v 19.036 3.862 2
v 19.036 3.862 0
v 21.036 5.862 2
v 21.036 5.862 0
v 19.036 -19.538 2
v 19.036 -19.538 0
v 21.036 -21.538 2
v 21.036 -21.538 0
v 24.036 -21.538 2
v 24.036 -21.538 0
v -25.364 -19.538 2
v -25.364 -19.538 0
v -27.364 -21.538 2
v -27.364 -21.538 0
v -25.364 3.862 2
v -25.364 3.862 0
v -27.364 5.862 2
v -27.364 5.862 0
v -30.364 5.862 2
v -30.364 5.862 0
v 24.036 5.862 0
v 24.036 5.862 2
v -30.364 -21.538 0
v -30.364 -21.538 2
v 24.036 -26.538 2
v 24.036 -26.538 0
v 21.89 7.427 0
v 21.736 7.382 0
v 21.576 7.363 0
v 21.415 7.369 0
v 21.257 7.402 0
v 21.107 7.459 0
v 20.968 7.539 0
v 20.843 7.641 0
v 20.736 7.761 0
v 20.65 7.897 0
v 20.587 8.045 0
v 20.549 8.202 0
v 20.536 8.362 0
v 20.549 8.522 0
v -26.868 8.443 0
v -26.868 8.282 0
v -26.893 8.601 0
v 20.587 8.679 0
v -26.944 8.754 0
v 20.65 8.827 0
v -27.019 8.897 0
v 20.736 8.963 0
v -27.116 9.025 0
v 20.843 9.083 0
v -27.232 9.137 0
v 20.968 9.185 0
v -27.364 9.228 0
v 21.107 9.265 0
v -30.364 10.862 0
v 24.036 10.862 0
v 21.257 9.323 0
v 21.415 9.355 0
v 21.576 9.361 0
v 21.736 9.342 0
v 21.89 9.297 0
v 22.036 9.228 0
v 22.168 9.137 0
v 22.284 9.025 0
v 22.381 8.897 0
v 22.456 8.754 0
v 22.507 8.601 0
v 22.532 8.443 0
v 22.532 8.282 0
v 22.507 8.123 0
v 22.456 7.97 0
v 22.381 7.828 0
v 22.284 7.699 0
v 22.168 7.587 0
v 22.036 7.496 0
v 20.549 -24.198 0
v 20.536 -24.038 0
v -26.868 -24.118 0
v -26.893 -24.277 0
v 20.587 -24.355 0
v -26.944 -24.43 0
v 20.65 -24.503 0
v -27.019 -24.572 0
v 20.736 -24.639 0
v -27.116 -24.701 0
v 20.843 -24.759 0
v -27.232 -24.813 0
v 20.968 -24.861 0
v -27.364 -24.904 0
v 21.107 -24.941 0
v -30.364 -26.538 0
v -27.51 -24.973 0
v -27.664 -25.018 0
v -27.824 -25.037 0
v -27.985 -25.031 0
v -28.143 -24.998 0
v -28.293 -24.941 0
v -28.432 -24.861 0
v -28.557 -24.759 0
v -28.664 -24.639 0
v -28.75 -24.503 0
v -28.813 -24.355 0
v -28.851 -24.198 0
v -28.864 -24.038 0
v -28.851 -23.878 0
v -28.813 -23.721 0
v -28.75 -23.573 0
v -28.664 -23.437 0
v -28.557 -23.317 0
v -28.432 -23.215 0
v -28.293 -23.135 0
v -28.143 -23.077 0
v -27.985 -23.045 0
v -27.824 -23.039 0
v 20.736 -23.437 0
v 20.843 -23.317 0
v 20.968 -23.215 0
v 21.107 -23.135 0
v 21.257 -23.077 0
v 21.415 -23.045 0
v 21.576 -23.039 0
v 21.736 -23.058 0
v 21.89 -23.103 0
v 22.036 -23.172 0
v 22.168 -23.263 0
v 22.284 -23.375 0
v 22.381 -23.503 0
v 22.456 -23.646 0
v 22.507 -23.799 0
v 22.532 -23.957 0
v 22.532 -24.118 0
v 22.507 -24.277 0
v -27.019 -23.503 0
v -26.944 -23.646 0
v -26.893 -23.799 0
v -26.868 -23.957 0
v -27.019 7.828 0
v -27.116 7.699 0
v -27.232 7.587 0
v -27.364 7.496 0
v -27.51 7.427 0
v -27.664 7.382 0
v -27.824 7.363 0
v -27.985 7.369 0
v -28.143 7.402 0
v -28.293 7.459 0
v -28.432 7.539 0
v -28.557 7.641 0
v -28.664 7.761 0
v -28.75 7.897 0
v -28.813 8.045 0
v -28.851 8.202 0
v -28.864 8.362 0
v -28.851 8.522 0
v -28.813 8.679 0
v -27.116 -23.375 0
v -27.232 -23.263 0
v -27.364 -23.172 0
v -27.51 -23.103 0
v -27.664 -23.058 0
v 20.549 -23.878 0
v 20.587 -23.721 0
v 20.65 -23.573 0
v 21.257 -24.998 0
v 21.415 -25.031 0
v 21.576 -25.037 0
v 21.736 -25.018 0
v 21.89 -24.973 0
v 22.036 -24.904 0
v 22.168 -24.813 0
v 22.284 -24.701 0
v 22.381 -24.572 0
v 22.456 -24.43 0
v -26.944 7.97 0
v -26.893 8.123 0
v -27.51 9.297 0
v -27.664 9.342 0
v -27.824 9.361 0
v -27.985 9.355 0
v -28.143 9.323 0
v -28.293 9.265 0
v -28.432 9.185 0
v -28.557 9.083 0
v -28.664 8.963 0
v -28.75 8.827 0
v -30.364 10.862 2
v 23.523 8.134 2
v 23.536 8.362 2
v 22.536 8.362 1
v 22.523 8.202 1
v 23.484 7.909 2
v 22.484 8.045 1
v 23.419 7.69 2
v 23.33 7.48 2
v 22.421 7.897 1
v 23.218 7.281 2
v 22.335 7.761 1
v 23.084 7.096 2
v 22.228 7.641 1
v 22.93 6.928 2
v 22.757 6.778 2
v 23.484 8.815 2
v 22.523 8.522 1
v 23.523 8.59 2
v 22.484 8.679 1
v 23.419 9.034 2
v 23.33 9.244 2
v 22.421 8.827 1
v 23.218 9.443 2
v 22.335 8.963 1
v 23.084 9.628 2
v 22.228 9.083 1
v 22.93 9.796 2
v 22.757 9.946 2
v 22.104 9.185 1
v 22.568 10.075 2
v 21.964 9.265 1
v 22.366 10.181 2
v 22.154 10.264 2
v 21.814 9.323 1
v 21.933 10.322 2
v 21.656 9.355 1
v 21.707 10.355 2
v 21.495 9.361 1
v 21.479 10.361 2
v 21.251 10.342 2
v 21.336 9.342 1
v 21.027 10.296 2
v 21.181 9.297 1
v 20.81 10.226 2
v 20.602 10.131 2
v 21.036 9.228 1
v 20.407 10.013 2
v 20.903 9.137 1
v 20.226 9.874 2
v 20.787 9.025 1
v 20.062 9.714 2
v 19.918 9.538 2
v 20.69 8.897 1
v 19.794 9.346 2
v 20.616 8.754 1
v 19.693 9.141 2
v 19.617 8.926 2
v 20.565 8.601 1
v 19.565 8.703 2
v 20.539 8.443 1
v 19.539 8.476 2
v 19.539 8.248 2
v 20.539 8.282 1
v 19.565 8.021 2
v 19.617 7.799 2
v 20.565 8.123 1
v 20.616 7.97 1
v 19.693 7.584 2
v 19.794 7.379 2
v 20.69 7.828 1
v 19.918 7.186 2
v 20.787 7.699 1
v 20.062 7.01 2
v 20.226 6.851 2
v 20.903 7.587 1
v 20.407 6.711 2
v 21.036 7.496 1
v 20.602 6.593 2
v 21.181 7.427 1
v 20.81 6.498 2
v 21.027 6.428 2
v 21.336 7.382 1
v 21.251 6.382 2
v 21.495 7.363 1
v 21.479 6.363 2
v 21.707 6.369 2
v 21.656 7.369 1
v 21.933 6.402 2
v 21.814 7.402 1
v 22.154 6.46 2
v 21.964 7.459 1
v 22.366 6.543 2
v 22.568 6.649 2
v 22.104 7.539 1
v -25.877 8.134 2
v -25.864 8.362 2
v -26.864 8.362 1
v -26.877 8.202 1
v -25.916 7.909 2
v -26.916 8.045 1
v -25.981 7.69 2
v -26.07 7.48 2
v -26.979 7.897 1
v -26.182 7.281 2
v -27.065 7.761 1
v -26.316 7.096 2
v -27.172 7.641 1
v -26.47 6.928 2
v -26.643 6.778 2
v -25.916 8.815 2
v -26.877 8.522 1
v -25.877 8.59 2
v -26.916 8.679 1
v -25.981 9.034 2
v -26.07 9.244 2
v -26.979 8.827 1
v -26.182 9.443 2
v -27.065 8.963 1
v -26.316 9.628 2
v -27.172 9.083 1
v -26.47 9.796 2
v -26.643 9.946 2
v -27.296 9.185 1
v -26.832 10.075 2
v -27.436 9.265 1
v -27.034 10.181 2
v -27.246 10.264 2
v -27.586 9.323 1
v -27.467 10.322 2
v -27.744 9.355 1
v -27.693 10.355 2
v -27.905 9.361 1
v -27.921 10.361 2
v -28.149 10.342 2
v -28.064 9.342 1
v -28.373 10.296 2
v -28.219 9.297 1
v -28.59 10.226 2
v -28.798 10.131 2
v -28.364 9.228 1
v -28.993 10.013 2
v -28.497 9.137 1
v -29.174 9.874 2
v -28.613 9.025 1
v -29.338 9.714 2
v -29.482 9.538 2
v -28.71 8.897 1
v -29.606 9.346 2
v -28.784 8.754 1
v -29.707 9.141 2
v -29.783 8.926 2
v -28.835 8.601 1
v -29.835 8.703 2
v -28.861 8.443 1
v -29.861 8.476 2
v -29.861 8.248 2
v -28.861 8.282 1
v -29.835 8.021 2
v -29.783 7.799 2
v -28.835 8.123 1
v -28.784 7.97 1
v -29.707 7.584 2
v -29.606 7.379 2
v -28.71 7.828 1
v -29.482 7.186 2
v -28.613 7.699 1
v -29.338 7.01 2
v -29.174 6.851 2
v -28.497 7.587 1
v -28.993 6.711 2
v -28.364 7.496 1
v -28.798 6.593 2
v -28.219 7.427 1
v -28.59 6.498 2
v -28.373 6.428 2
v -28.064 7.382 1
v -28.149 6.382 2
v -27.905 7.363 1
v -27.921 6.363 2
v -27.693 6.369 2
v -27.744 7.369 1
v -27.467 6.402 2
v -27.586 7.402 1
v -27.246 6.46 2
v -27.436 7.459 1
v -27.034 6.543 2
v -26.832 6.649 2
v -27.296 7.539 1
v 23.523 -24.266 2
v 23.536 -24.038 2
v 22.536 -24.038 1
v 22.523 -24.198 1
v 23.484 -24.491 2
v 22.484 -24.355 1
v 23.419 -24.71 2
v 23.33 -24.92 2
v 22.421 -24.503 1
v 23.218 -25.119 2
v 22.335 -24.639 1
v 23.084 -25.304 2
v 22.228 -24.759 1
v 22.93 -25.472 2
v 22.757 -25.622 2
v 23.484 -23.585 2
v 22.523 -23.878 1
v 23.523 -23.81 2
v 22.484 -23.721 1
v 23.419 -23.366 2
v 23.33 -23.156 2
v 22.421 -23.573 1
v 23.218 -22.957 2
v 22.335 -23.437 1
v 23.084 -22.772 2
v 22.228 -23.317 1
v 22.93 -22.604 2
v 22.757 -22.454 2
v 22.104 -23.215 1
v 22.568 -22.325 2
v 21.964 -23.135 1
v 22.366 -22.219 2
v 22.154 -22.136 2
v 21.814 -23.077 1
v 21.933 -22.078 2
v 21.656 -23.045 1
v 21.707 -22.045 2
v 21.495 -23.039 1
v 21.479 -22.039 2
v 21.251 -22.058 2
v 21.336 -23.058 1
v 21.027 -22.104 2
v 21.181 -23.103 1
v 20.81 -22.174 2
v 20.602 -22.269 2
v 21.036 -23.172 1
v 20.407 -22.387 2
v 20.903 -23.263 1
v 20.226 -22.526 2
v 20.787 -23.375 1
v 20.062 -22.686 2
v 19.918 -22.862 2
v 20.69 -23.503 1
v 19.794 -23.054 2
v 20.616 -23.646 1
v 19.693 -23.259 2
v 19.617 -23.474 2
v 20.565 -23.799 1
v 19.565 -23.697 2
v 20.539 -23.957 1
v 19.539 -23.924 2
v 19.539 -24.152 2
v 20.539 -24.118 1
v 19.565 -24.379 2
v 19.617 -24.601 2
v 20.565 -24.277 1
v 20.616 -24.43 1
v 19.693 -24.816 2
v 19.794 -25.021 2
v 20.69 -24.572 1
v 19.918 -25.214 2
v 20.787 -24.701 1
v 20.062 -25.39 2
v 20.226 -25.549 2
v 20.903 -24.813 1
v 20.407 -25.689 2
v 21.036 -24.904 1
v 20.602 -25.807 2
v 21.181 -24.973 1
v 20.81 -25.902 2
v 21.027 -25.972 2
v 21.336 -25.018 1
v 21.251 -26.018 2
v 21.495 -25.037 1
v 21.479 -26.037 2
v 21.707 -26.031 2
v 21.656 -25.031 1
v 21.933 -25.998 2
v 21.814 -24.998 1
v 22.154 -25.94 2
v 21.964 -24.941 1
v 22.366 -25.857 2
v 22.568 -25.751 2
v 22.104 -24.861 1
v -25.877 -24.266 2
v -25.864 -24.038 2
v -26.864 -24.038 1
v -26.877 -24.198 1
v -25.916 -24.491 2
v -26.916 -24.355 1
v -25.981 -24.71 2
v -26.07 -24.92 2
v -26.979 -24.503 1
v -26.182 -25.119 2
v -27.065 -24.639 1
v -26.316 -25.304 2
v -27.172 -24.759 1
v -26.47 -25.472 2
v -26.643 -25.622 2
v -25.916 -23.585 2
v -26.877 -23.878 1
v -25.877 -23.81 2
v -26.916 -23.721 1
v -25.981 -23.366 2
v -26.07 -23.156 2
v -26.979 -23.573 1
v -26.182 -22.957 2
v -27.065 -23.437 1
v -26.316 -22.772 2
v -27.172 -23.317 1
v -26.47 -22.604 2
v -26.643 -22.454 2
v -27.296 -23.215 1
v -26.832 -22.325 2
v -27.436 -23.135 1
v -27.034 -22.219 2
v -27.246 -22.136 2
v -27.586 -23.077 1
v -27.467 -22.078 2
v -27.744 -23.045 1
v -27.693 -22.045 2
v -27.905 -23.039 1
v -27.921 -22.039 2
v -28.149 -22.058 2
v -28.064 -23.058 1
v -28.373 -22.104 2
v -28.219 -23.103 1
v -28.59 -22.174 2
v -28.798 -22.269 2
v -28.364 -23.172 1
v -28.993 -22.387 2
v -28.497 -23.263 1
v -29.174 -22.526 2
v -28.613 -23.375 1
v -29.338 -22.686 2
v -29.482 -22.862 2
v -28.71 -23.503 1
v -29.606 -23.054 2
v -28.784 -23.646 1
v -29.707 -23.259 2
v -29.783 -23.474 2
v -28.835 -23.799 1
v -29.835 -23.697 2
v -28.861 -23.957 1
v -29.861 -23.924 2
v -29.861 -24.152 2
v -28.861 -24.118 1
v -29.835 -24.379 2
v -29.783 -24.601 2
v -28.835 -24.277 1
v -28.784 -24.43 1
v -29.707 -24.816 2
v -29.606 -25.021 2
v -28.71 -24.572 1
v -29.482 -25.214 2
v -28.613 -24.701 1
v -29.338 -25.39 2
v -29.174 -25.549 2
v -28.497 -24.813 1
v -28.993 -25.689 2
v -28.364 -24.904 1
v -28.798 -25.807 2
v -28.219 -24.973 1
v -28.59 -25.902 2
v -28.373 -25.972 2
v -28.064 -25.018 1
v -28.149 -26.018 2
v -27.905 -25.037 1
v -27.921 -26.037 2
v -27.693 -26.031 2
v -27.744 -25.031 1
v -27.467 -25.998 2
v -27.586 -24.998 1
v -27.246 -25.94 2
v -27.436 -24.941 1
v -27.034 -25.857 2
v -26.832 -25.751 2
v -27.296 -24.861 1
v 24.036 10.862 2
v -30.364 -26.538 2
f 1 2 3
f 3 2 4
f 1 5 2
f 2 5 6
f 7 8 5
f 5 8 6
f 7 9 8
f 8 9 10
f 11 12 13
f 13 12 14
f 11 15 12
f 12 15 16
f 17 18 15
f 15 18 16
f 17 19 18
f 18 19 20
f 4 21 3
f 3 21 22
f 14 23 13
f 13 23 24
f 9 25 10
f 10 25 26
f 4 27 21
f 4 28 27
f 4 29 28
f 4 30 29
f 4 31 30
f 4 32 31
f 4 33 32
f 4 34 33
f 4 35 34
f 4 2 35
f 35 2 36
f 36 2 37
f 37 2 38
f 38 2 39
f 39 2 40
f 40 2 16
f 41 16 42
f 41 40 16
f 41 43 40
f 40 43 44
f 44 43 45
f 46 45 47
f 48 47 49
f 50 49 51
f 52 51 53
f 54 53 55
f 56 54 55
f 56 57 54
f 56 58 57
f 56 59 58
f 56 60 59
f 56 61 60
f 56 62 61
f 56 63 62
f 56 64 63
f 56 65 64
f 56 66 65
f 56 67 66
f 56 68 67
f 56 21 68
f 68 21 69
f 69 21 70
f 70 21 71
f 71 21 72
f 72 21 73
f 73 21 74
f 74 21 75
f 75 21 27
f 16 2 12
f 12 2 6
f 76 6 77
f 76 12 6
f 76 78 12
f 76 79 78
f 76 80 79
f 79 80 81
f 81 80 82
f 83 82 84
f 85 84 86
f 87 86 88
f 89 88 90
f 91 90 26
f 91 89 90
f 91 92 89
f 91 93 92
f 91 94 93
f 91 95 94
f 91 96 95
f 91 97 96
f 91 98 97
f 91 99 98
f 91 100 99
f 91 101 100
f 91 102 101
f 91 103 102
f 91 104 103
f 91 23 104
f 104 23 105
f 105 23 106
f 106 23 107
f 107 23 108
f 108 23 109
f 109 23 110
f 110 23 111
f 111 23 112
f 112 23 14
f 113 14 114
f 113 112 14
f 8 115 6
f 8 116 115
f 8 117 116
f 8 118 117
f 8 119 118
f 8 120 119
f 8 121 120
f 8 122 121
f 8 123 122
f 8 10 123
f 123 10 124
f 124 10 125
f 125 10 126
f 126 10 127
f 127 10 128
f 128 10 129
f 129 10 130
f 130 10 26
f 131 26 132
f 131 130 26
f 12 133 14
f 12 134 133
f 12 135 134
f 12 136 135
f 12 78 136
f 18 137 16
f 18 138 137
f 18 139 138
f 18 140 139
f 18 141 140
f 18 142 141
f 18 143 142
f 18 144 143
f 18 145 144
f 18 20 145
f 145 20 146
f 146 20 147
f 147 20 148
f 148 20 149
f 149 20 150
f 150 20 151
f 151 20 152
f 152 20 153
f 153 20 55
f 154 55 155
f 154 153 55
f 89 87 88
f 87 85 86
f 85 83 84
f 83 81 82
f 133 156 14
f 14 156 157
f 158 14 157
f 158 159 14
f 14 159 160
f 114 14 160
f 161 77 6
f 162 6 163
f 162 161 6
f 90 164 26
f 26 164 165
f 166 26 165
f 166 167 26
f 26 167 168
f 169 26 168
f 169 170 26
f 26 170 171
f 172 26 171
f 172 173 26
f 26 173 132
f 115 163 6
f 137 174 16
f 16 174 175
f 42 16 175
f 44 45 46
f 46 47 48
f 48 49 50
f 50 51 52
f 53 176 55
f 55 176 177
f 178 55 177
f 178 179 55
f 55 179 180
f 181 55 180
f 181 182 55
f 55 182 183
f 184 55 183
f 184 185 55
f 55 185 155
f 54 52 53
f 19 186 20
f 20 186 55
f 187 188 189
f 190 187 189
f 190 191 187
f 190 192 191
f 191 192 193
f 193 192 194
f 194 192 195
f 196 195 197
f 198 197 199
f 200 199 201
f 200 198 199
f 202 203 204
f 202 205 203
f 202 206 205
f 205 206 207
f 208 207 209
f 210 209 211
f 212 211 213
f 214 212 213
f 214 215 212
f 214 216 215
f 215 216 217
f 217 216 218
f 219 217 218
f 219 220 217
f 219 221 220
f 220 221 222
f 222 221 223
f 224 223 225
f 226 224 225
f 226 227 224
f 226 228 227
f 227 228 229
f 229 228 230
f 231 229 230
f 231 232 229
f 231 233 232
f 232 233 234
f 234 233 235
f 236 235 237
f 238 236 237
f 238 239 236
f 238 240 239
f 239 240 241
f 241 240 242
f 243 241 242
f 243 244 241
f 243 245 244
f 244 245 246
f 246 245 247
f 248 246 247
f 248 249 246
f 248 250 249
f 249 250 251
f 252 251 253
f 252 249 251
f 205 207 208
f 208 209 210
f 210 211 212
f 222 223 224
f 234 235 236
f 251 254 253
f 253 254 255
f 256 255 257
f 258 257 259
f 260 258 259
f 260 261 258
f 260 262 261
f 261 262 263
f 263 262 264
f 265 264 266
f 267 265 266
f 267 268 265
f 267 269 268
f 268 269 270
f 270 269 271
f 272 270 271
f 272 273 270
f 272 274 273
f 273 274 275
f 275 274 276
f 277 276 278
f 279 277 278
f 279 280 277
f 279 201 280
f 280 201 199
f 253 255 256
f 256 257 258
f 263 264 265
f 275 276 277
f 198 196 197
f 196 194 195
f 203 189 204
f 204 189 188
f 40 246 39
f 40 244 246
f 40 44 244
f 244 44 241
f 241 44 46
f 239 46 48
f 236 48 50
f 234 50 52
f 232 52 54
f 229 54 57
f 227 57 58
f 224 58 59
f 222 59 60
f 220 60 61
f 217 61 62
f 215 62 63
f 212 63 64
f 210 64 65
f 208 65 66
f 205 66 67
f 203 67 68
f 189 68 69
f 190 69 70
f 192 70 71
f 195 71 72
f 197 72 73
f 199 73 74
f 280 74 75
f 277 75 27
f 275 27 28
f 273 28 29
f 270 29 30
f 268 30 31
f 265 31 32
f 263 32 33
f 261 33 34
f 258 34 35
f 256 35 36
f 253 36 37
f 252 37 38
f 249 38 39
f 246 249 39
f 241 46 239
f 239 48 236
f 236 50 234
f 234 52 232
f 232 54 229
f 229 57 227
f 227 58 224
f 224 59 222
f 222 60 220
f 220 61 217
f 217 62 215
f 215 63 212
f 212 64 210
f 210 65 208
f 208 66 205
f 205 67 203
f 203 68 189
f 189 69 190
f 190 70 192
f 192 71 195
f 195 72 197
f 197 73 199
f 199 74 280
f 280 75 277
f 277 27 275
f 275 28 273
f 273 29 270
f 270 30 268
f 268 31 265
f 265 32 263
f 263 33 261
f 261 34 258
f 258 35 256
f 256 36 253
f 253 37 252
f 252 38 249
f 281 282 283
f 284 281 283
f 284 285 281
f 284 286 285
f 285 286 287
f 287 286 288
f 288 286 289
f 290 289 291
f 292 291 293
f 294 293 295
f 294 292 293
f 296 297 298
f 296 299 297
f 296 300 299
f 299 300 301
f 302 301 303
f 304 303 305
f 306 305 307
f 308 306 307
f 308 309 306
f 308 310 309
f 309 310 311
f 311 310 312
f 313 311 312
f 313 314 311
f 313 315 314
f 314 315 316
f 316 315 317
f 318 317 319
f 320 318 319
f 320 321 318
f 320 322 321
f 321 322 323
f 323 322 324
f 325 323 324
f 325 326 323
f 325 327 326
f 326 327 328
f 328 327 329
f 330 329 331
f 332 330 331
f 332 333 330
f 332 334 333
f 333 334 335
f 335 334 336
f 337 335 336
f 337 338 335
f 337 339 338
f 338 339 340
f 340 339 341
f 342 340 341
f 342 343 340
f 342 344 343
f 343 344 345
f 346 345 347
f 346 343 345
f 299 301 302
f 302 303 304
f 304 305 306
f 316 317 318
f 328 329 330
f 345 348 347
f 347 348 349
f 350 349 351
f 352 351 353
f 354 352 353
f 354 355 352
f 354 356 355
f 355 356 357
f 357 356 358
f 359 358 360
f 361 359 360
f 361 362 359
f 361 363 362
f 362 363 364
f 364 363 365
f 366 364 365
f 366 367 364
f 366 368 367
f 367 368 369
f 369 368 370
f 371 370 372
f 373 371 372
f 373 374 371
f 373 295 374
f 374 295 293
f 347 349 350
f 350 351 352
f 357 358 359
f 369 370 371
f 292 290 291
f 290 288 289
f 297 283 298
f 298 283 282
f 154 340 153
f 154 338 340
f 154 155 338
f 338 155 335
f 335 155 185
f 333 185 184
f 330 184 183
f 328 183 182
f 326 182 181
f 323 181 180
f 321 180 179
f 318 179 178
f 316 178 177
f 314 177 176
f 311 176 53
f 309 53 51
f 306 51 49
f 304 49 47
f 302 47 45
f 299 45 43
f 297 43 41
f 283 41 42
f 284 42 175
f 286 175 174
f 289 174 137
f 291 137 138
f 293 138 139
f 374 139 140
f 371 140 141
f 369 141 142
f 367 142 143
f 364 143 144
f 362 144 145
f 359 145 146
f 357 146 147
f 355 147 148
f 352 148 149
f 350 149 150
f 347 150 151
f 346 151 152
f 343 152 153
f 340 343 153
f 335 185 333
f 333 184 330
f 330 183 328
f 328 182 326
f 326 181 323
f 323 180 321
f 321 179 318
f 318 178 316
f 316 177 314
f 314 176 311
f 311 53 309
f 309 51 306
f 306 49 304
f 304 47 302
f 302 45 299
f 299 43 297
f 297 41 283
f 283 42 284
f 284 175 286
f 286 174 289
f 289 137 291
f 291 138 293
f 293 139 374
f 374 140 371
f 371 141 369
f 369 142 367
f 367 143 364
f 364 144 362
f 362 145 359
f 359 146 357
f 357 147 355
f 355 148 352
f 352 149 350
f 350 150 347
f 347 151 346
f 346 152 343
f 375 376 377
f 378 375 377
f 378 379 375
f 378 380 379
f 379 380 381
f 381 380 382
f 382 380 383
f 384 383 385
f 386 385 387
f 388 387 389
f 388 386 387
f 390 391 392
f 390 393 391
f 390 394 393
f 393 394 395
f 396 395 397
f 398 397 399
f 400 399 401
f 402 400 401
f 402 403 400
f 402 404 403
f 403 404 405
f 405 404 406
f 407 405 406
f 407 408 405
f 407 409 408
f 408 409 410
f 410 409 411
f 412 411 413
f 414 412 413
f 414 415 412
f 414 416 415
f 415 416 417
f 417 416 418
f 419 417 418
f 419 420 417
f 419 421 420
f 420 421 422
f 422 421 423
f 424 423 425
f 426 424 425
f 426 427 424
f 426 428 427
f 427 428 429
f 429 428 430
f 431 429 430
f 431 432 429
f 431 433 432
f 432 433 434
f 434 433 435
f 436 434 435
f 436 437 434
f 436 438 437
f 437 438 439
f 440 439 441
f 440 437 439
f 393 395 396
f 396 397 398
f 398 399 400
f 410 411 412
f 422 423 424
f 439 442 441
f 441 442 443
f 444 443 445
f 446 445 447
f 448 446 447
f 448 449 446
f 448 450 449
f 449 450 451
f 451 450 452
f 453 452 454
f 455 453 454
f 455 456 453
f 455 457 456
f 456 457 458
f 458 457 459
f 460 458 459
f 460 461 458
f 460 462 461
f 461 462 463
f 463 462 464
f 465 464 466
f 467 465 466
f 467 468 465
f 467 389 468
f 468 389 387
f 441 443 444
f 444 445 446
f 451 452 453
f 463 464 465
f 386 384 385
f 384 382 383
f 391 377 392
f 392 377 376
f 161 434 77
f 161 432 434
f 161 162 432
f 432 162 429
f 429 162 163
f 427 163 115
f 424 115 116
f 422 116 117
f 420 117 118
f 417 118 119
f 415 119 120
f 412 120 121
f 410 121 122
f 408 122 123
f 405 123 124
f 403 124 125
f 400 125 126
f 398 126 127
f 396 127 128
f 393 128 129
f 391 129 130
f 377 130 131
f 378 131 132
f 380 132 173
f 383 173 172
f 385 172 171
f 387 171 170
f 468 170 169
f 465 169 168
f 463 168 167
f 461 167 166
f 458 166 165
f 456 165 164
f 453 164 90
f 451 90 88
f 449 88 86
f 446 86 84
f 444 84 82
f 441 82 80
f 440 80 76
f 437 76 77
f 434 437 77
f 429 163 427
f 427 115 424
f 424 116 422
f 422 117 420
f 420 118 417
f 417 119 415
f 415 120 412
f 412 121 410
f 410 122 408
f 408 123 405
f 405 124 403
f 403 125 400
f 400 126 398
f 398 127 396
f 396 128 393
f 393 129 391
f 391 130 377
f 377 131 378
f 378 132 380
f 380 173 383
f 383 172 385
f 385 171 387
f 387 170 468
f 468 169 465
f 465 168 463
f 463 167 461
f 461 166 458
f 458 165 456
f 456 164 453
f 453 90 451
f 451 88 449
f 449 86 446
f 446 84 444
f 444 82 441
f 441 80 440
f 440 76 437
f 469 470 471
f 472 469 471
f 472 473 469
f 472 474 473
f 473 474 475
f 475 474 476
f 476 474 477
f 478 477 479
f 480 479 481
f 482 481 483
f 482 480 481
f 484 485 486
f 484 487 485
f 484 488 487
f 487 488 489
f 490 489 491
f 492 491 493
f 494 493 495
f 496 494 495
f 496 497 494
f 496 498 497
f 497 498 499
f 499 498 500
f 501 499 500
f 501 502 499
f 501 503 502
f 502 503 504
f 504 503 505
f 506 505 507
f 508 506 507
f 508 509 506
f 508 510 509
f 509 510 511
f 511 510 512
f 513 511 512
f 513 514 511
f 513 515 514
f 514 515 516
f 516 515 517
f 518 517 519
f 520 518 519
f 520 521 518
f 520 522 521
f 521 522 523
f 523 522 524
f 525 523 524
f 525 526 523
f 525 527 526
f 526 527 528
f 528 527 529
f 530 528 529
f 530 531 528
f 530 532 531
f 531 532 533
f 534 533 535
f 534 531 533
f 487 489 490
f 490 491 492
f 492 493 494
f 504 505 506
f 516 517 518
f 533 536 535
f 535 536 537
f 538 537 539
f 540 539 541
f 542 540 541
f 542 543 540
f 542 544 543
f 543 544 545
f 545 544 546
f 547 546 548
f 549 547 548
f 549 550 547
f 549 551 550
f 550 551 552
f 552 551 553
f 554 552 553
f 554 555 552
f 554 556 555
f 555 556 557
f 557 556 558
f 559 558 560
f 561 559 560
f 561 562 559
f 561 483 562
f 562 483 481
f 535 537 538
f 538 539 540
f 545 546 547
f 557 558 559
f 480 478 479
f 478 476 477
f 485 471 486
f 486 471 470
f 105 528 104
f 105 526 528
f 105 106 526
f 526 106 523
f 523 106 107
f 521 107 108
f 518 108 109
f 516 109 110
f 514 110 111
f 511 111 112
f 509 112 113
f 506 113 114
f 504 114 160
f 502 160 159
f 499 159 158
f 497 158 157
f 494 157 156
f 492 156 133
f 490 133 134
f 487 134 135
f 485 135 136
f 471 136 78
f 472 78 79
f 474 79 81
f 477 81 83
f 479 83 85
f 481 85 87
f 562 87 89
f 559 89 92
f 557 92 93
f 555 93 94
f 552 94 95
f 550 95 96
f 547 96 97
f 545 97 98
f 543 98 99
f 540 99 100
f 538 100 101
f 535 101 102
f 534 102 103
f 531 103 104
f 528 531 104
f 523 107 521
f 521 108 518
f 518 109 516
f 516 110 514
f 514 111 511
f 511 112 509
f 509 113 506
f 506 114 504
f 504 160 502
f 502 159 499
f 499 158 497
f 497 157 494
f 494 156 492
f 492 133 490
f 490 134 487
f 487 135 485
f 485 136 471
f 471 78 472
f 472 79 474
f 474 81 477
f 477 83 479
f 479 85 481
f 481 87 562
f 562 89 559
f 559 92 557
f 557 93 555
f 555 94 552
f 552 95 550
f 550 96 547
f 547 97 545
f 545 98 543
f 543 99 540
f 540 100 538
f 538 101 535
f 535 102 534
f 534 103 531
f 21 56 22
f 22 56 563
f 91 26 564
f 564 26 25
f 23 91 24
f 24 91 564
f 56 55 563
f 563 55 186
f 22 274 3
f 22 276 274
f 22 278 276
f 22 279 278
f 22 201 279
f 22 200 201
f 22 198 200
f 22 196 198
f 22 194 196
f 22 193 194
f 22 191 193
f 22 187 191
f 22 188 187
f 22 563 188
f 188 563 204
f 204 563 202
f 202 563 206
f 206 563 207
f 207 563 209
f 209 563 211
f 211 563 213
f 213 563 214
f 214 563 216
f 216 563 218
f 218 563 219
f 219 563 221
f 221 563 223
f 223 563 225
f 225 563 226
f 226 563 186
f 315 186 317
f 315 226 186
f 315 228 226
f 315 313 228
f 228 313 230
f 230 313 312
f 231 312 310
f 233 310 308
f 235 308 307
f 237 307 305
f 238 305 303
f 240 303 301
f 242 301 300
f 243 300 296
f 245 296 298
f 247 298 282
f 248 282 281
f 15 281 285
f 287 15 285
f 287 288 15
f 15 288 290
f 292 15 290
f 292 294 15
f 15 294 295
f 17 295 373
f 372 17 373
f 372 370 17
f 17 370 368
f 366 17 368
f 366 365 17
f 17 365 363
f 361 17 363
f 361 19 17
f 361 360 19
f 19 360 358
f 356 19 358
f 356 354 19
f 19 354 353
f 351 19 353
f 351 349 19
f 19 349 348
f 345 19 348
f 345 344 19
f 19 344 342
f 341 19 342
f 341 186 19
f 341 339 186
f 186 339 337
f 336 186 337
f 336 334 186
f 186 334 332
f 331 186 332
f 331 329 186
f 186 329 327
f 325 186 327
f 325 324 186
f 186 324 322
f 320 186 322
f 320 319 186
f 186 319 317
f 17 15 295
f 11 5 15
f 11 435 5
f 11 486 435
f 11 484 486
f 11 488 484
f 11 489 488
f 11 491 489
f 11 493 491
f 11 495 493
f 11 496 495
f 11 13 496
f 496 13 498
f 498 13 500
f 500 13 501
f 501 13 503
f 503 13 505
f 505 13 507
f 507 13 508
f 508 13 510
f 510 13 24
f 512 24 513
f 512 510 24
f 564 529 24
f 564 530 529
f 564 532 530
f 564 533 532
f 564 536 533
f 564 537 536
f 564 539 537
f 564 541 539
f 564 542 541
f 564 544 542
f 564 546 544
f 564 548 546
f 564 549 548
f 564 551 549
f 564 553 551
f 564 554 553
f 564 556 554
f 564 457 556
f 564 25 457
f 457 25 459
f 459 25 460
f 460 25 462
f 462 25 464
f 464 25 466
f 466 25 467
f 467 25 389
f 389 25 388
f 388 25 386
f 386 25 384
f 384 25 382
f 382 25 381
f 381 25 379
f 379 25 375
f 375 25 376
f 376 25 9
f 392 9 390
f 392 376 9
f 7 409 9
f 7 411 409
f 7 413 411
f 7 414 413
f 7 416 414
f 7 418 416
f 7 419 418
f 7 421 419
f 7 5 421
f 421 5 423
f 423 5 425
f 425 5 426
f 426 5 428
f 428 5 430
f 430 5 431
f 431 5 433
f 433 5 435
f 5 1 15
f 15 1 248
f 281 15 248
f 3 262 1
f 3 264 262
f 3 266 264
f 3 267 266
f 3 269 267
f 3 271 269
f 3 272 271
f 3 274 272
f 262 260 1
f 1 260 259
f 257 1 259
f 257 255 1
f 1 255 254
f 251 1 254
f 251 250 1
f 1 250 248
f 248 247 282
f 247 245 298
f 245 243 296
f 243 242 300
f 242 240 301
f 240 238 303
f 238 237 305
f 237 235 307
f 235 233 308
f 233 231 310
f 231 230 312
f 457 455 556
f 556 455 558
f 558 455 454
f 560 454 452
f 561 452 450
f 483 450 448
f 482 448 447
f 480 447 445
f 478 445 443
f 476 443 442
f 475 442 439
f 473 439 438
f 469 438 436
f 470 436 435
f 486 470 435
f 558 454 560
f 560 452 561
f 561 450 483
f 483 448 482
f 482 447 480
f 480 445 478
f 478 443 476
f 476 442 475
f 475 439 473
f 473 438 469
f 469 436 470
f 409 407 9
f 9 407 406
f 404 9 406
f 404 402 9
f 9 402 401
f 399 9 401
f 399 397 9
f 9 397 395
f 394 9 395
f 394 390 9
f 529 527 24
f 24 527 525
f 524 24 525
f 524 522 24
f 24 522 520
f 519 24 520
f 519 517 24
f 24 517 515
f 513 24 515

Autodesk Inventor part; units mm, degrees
ref_plane "YZ Plane" through (0, 0, 0) normal (1, 0, 0) x (0, 1, 0)
ref_plane "XZ Plane" through (0, 0, 0) normal (0, 1, 0) x (-1, 0, 0)
ref_plane "XY Plane" through (0, 0, 0) normal (0, 0, 1) x (1, 0, 0)
sketch "Sketch1" plane through (0, 0, 0) normal (0, 0, 1) x (1, 0, 0)
  line L0 (-30.3644, 10.862) -> (24.0356, 10.862)
  line L1 (24.0356, 10.862) -> (24.0356, -26.538)
  line L2 (24.0356, -26.538) -> (-30.3644, -26.538)
  line L3 (-30.3644, -26.538) -> (-30.3644, 10.862)
  point P0 (0, 0)
  dimension "d0" = 54.4
  dimension "d1" = 37.4
extrude "Extrusion1" add sketch "Sketch1" along normal blind 2
sketch "Sketch2" plane through (0, 0, 2) normal (0, 0, 1) x (1, 0, 0)
  line L0 (-30.3644, 10.862) -> (24.0356, 10.862) projected
  line L1 (-30.3644, 10.862) -> (-30.3644, -26.538) projected
  line L2 (-30.3644, -26.538) -> (24.0356, -26.538) projected
  line L3 (24.0356, -26.538) -> (24.0356, 10.862) projected
  point P0 (0, 0)
  point P1 (-27.8644, 8.362)
  point P2 (21.5356, -24.038)
  point P3 (21.5356, 8.362)
  point P4 (-27.8644, -24.038)
  dimension "d4" = 2.5
  dimension "d5" = 2.5
  dimension "d6" = 2.5
  dimension "d7" = 2.5
hole "Hole1" at (-27.8644, 8.362, 2) at (21.5356, -24.038, 2) at (21.5356, 8.362, 2) at (-27.8644, -24.038, 2) direction (0, 0, -1) diameter 2 depth 8 tip angle 118 countersink diameter 4 countersink angle 90
sketch "Sketch3" plane through (0, 0, 2) normal (0, 0, 1) x (1, 0, 0)
  line L0 (-30.3644, -26.538) -> (-30.3644, 10.862) projected
  line L1 (-30.3644, 5.862) -> (-25.3644, 5.862)
  line L2 (-25.3644, 5.862) -> (-25.3644, -21.538)
  line L3 (-25.3644, -21.538) -> (-30.3644, -21.538)
  line L4 (-30.3644, -21.538) -> (-30.3644, 5.862)
  line L5 (24.0356, 10.862) -> (24.0356, -26.538) projected
  line L6 (24.0356, 5.862) -> (19.0356, 5.862)
  line L7 (19.0356, 5.862) -> (19.0356, -21.538)
  line L8 (19.0356, -21.538) -> (24.0356, -21.538)
  line L9 (24.0356, -21.538) -> (24.0356, 5.862)
  line L10 (24.0356, 10.862) -> (-30.3644, 10.862) projected
  line L11 (-30.3644, -26.538) -> (24.0356, -26.538) projected
  point P0 (0, 0)
  dimension "d15" = 5
  dimension "d16" = 5
  dimension "d17" = 5
  dimension "d18" = 5
extrude "Extrusion2" cut sketch "Sketch3" against normal blind 2 contours L0 L1 L2 L3 | L8 L7 L6 L5
chamfer "Chamfer1" distance 2 angle 45 4 edges at (-25.3644, 5.862, 1) (-25.3644, -21.538, 1) (19.0356, -21.538, 1) (19.0356, 5.862, 1)
properties part number "main body cover"
